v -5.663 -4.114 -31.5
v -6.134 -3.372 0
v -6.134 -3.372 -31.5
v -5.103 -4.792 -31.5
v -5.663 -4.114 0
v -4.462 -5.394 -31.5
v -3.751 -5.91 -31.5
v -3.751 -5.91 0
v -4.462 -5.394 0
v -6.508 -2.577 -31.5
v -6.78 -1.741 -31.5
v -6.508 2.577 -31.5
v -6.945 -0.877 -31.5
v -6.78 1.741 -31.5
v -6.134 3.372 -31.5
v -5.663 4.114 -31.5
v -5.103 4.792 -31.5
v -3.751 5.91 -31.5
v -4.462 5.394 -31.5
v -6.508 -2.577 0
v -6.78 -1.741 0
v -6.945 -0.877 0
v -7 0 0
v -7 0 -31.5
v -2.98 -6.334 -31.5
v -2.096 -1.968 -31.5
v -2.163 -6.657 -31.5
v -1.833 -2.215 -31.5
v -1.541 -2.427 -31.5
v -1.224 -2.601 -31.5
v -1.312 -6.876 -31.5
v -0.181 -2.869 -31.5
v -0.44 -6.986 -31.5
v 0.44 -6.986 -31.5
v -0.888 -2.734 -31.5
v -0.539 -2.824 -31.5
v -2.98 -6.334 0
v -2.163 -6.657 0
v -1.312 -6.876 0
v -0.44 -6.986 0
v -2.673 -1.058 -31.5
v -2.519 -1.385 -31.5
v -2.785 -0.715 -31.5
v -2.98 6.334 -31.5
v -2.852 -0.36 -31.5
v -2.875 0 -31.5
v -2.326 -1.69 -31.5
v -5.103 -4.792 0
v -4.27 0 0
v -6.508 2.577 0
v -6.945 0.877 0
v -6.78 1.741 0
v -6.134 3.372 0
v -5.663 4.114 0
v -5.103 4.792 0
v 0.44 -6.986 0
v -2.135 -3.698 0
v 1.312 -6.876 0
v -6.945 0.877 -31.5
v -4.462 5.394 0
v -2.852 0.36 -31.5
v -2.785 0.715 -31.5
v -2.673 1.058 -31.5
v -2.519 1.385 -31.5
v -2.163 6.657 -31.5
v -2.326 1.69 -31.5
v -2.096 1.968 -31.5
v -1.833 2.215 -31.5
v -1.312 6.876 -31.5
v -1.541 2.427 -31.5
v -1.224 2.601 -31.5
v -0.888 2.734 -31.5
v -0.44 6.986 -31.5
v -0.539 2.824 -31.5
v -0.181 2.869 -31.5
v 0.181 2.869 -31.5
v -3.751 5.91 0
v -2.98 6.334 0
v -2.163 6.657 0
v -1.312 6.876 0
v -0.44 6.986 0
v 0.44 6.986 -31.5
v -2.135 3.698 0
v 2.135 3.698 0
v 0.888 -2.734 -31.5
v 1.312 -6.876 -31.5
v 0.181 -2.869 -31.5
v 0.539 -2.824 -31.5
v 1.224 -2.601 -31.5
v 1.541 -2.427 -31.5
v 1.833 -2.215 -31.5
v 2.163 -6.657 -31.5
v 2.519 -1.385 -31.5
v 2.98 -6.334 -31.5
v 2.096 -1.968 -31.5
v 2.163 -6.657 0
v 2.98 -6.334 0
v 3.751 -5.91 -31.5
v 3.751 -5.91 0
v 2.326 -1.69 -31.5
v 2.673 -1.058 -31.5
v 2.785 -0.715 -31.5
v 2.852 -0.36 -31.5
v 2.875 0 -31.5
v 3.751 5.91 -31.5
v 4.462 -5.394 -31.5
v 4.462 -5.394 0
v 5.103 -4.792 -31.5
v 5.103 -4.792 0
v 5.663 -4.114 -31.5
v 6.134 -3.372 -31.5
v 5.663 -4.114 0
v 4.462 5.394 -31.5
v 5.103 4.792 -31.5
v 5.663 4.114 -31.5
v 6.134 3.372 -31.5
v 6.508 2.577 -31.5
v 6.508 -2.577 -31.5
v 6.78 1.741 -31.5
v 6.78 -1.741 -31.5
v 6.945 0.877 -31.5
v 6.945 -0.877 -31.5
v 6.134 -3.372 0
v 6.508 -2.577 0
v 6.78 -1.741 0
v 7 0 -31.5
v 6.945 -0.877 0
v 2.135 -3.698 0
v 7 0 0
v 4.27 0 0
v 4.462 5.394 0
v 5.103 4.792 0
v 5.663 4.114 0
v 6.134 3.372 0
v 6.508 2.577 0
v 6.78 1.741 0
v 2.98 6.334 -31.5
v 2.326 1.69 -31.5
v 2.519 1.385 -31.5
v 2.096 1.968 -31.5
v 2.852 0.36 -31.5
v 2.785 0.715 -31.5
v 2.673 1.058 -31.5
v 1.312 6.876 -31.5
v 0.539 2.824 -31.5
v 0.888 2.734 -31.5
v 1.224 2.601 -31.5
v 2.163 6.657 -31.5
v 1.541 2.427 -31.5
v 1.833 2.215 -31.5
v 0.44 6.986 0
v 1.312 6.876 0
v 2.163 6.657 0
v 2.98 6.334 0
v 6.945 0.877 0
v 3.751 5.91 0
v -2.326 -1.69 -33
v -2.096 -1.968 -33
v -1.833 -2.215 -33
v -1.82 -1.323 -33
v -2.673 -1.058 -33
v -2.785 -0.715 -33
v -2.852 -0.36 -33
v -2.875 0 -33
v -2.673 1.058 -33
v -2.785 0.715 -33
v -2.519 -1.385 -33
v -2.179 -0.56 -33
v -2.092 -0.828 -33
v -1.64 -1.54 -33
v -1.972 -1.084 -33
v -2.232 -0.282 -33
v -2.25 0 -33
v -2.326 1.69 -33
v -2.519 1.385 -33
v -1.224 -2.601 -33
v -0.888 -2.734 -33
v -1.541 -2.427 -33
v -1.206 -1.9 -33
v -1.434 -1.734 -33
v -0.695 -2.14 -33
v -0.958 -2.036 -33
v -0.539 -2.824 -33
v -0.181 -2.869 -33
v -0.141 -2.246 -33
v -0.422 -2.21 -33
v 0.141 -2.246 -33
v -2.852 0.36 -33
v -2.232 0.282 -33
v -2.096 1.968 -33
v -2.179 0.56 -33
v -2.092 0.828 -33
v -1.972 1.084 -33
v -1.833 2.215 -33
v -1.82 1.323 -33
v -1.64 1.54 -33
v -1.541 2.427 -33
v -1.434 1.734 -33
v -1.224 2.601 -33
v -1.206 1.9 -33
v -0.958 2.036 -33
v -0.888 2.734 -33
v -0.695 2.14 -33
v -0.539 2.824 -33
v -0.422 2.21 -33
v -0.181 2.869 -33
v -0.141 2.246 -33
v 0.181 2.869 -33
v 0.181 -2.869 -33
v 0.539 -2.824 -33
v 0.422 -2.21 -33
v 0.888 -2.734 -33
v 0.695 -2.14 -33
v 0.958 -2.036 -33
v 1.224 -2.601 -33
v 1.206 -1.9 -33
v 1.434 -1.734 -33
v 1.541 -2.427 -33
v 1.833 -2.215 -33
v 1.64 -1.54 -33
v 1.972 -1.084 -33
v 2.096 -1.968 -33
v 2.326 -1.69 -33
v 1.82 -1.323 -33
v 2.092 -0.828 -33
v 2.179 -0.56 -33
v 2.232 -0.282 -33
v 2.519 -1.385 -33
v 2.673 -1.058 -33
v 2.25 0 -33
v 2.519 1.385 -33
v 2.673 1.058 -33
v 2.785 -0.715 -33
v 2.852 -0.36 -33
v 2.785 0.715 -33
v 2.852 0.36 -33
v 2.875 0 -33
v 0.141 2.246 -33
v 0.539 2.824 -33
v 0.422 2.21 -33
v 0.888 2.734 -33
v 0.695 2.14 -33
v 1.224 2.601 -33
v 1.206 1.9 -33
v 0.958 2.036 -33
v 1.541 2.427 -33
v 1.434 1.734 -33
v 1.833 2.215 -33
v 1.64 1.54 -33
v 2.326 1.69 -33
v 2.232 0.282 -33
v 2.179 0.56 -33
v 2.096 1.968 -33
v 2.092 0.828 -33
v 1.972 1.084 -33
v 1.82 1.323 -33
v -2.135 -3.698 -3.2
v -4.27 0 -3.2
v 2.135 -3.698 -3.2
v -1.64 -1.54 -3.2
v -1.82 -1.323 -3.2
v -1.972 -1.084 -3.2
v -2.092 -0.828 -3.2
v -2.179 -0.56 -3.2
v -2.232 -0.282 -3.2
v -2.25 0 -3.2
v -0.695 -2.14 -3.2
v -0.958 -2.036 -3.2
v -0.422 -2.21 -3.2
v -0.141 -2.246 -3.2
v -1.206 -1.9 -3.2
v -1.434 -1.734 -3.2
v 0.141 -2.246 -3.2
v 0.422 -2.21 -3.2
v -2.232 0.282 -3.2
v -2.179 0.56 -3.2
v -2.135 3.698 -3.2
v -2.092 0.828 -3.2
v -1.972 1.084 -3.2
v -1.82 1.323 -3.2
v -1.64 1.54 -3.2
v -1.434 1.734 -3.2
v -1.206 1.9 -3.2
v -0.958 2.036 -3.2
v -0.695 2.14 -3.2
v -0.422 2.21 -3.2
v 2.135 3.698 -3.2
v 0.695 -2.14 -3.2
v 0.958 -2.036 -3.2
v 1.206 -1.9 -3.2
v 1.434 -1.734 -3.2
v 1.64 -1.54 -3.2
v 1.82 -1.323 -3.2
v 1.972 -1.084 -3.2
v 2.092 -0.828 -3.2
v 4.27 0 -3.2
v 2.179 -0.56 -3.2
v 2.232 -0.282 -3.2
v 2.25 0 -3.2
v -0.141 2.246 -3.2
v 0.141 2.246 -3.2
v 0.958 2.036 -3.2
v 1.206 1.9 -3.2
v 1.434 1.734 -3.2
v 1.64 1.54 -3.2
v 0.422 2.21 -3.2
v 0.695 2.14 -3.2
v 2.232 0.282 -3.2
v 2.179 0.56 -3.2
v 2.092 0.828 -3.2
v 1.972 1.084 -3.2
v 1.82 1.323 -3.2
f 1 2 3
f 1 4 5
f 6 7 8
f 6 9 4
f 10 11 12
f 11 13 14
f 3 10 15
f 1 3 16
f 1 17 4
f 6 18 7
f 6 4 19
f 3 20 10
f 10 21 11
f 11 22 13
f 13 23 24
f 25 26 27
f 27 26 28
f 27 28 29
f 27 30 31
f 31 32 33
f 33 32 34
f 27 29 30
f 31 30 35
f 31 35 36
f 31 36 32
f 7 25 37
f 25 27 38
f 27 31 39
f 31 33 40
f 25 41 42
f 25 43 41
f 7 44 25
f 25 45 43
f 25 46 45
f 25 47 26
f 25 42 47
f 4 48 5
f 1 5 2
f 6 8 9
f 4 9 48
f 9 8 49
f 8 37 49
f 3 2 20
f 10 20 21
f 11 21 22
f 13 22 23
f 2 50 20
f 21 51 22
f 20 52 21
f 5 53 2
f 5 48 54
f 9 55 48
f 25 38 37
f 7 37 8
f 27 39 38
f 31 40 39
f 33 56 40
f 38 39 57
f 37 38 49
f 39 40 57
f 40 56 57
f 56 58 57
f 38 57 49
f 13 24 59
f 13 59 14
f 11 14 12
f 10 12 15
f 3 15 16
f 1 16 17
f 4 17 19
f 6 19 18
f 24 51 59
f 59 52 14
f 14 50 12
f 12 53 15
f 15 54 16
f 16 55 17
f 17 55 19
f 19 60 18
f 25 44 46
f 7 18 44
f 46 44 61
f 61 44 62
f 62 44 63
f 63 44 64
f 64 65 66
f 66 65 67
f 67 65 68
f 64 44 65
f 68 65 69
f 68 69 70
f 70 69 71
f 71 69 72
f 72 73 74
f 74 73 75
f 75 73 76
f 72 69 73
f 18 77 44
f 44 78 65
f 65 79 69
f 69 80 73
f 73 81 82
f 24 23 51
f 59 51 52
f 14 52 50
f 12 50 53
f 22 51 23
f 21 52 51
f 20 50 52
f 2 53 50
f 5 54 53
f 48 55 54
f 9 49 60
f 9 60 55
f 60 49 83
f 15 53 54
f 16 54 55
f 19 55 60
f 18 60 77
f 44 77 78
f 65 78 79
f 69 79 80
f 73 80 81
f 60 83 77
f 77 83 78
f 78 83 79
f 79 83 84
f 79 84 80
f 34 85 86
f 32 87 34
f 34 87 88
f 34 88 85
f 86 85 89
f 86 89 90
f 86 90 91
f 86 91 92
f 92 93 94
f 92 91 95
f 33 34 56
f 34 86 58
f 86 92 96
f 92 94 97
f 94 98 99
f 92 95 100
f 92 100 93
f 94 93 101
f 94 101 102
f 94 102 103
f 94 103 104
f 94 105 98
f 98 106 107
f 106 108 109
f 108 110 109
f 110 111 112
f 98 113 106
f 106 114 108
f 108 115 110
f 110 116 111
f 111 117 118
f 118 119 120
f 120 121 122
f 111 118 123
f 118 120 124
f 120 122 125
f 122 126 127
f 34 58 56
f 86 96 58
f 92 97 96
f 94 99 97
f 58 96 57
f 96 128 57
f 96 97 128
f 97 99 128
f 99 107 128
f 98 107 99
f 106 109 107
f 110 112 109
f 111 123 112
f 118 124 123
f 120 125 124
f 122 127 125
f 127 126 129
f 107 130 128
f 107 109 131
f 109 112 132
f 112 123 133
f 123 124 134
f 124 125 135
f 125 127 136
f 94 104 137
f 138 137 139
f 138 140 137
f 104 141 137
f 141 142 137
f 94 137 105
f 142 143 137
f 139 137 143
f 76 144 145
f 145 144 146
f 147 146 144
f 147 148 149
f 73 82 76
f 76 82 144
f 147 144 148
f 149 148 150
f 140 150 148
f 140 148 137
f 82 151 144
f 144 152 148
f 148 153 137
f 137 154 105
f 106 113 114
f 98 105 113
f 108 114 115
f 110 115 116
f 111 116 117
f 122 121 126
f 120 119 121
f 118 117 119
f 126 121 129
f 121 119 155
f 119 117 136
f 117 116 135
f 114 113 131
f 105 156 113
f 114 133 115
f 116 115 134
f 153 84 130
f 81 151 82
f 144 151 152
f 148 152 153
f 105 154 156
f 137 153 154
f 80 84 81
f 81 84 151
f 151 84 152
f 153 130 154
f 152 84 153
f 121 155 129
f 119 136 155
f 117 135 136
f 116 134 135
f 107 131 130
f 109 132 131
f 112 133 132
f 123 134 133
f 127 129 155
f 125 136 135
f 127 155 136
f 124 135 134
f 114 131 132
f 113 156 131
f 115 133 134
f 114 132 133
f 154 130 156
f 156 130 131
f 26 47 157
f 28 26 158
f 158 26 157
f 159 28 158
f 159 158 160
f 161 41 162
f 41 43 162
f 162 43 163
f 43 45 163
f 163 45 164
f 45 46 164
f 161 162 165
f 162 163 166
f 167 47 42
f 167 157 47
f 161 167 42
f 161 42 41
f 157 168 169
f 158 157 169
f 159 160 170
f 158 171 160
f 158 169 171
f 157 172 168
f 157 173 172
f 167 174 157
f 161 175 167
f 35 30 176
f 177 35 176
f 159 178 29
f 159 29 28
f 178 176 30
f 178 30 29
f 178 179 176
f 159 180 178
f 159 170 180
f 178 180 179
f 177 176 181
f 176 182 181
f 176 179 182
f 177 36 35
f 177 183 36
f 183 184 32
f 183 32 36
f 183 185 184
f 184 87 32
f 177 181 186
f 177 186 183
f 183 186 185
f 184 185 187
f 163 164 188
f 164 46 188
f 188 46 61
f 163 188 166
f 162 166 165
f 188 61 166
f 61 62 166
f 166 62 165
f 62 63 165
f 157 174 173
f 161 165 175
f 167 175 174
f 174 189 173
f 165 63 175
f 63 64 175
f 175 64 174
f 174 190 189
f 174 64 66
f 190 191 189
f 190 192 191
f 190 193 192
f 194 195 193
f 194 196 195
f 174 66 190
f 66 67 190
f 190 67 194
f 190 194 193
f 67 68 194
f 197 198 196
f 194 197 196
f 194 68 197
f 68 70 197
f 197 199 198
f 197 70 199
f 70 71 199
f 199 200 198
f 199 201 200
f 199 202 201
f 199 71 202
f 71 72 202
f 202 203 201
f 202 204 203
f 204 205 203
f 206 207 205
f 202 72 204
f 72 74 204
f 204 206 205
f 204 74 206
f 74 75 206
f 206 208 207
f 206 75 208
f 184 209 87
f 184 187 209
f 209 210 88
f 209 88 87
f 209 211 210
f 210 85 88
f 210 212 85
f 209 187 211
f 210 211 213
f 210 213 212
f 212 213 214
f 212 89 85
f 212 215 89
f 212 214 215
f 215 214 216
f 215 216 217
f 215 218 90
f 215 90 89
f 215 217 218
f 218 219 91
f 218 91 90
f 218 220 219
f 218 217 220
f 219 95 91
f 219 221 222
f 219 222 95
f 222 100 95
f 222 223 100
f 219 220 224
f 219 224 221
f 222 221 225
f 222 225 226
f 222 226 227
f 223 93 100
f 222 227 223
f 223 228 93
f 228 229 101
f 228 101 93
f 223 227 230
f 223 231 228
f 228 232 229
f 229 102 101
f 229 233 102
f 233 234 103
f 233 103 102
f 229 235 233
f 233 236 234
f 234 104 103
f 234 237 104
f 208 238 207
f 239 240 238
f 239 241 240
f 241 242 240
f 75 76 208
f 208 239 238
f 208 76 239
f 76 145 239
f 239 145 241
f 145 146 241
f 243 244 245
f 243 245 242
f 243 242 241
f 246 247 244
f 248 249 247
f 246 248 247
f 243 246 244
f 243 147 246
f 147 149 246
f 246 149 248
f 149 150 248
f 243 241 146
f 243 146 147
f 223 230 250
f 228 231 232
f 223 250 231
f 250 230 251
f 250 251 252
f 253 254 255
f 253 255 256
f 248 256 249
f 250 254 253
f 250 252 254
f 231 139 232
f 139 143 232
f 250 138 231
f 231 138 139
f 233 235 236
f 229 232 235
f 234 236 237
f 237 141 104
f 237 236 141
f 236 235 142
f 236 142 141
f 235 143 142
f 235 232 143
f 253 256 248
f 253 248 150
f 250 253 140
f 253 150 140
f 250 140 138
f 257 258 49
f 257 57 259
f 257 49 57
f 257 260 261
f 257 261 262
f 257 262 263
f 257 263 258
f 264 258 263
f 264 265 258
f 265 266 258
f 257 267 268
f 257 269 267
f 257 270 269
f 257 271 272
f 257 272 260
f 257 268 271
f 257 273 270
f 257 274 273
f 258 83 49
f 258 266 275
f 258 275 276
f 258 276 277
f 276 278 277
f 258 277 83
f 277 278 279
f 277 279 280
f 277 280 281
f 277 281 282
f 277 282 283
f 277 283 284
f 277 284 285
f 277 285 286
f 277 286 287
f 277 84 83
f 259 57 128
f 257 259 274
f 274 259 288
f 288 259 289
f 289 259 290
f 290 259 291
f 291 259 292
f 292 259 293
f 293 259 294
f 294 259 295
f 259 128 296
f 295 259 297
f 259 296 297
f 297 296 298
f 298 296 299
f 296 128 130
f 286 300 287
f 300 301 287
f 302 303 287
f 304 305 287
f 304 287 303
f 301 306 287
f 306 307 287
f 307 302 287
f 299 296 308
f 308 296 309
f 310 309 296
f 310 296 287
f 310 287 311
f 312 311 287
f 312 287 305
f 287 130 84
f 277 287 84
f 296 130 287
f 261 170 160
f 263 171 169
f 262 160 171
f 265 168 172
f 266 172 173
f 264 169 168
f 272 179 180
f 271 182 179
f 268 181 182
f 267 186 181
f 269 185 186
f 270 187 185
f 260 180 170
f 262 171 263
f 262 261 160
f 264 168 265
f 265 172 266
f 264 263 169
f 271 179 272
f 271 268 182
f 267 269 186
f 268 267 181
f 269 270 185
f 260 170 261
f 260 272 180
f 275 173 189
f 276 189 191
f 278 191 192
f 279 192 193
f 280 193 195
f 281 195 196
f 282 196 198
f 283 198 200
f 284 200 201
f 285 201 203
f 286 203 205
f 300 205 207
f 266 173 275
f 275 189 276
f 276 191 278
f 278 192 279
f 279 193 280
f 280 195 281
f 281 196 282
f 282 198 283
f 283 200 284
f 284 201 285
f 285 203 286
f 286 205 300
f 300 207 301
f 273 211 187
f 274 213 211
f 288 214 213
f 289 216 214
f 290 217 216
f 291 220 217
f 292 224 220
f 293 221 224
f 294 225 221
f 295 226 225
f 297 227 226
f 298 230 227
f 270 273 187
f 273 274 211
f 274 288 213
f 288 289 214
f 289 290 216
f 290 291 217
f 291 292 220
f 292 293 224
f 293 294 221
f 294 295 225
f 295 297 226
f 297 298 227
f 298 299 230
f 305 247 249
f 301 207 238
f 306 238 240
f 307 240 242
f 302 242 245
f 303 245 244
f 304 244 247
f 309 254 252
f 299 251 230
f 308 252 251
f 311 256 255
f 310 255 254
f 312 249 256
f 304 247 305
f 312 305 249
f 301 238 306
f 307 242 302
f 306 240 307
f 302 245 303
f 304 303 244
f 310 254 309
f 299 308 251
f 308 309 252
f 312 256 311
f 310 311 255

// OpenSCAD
$fn = 50;

difference() {
	union() {
		translate(v = [0, 0, -31.5]) {
			cylinder(h = 31.5, r = 7.0);
		}
		#translate(v = [0, 0, -33.0]) {
			cylinder(h = 33, r = 2.875);
		}
	}
	union() {
		translate(v = [0, 0, 0]) {
			rotate(a = [0, 0, 0]) {
				difference() {
					union() {
						translate(v = [0, 0, -3.2]) {
							linear_extrude(height = 3.2) {
								polygon(points = [[4.2698, 0.0], [2.1349000000000005, 3.697755269078796], [-2.134899999999999, 3.6977552690787965], [-4.2698, 5.228996902999369e-16], [-2.134900000000002, -3.6977552690787956], [2.1348999999999974, -3.697755269078798]]);
							}
						}
					}
					union();
				}
			}
		}
		#translate(v = [0, 0, -100.0]) {
			cylinder(h = 200, r = 2.25);
		}
	}
}
